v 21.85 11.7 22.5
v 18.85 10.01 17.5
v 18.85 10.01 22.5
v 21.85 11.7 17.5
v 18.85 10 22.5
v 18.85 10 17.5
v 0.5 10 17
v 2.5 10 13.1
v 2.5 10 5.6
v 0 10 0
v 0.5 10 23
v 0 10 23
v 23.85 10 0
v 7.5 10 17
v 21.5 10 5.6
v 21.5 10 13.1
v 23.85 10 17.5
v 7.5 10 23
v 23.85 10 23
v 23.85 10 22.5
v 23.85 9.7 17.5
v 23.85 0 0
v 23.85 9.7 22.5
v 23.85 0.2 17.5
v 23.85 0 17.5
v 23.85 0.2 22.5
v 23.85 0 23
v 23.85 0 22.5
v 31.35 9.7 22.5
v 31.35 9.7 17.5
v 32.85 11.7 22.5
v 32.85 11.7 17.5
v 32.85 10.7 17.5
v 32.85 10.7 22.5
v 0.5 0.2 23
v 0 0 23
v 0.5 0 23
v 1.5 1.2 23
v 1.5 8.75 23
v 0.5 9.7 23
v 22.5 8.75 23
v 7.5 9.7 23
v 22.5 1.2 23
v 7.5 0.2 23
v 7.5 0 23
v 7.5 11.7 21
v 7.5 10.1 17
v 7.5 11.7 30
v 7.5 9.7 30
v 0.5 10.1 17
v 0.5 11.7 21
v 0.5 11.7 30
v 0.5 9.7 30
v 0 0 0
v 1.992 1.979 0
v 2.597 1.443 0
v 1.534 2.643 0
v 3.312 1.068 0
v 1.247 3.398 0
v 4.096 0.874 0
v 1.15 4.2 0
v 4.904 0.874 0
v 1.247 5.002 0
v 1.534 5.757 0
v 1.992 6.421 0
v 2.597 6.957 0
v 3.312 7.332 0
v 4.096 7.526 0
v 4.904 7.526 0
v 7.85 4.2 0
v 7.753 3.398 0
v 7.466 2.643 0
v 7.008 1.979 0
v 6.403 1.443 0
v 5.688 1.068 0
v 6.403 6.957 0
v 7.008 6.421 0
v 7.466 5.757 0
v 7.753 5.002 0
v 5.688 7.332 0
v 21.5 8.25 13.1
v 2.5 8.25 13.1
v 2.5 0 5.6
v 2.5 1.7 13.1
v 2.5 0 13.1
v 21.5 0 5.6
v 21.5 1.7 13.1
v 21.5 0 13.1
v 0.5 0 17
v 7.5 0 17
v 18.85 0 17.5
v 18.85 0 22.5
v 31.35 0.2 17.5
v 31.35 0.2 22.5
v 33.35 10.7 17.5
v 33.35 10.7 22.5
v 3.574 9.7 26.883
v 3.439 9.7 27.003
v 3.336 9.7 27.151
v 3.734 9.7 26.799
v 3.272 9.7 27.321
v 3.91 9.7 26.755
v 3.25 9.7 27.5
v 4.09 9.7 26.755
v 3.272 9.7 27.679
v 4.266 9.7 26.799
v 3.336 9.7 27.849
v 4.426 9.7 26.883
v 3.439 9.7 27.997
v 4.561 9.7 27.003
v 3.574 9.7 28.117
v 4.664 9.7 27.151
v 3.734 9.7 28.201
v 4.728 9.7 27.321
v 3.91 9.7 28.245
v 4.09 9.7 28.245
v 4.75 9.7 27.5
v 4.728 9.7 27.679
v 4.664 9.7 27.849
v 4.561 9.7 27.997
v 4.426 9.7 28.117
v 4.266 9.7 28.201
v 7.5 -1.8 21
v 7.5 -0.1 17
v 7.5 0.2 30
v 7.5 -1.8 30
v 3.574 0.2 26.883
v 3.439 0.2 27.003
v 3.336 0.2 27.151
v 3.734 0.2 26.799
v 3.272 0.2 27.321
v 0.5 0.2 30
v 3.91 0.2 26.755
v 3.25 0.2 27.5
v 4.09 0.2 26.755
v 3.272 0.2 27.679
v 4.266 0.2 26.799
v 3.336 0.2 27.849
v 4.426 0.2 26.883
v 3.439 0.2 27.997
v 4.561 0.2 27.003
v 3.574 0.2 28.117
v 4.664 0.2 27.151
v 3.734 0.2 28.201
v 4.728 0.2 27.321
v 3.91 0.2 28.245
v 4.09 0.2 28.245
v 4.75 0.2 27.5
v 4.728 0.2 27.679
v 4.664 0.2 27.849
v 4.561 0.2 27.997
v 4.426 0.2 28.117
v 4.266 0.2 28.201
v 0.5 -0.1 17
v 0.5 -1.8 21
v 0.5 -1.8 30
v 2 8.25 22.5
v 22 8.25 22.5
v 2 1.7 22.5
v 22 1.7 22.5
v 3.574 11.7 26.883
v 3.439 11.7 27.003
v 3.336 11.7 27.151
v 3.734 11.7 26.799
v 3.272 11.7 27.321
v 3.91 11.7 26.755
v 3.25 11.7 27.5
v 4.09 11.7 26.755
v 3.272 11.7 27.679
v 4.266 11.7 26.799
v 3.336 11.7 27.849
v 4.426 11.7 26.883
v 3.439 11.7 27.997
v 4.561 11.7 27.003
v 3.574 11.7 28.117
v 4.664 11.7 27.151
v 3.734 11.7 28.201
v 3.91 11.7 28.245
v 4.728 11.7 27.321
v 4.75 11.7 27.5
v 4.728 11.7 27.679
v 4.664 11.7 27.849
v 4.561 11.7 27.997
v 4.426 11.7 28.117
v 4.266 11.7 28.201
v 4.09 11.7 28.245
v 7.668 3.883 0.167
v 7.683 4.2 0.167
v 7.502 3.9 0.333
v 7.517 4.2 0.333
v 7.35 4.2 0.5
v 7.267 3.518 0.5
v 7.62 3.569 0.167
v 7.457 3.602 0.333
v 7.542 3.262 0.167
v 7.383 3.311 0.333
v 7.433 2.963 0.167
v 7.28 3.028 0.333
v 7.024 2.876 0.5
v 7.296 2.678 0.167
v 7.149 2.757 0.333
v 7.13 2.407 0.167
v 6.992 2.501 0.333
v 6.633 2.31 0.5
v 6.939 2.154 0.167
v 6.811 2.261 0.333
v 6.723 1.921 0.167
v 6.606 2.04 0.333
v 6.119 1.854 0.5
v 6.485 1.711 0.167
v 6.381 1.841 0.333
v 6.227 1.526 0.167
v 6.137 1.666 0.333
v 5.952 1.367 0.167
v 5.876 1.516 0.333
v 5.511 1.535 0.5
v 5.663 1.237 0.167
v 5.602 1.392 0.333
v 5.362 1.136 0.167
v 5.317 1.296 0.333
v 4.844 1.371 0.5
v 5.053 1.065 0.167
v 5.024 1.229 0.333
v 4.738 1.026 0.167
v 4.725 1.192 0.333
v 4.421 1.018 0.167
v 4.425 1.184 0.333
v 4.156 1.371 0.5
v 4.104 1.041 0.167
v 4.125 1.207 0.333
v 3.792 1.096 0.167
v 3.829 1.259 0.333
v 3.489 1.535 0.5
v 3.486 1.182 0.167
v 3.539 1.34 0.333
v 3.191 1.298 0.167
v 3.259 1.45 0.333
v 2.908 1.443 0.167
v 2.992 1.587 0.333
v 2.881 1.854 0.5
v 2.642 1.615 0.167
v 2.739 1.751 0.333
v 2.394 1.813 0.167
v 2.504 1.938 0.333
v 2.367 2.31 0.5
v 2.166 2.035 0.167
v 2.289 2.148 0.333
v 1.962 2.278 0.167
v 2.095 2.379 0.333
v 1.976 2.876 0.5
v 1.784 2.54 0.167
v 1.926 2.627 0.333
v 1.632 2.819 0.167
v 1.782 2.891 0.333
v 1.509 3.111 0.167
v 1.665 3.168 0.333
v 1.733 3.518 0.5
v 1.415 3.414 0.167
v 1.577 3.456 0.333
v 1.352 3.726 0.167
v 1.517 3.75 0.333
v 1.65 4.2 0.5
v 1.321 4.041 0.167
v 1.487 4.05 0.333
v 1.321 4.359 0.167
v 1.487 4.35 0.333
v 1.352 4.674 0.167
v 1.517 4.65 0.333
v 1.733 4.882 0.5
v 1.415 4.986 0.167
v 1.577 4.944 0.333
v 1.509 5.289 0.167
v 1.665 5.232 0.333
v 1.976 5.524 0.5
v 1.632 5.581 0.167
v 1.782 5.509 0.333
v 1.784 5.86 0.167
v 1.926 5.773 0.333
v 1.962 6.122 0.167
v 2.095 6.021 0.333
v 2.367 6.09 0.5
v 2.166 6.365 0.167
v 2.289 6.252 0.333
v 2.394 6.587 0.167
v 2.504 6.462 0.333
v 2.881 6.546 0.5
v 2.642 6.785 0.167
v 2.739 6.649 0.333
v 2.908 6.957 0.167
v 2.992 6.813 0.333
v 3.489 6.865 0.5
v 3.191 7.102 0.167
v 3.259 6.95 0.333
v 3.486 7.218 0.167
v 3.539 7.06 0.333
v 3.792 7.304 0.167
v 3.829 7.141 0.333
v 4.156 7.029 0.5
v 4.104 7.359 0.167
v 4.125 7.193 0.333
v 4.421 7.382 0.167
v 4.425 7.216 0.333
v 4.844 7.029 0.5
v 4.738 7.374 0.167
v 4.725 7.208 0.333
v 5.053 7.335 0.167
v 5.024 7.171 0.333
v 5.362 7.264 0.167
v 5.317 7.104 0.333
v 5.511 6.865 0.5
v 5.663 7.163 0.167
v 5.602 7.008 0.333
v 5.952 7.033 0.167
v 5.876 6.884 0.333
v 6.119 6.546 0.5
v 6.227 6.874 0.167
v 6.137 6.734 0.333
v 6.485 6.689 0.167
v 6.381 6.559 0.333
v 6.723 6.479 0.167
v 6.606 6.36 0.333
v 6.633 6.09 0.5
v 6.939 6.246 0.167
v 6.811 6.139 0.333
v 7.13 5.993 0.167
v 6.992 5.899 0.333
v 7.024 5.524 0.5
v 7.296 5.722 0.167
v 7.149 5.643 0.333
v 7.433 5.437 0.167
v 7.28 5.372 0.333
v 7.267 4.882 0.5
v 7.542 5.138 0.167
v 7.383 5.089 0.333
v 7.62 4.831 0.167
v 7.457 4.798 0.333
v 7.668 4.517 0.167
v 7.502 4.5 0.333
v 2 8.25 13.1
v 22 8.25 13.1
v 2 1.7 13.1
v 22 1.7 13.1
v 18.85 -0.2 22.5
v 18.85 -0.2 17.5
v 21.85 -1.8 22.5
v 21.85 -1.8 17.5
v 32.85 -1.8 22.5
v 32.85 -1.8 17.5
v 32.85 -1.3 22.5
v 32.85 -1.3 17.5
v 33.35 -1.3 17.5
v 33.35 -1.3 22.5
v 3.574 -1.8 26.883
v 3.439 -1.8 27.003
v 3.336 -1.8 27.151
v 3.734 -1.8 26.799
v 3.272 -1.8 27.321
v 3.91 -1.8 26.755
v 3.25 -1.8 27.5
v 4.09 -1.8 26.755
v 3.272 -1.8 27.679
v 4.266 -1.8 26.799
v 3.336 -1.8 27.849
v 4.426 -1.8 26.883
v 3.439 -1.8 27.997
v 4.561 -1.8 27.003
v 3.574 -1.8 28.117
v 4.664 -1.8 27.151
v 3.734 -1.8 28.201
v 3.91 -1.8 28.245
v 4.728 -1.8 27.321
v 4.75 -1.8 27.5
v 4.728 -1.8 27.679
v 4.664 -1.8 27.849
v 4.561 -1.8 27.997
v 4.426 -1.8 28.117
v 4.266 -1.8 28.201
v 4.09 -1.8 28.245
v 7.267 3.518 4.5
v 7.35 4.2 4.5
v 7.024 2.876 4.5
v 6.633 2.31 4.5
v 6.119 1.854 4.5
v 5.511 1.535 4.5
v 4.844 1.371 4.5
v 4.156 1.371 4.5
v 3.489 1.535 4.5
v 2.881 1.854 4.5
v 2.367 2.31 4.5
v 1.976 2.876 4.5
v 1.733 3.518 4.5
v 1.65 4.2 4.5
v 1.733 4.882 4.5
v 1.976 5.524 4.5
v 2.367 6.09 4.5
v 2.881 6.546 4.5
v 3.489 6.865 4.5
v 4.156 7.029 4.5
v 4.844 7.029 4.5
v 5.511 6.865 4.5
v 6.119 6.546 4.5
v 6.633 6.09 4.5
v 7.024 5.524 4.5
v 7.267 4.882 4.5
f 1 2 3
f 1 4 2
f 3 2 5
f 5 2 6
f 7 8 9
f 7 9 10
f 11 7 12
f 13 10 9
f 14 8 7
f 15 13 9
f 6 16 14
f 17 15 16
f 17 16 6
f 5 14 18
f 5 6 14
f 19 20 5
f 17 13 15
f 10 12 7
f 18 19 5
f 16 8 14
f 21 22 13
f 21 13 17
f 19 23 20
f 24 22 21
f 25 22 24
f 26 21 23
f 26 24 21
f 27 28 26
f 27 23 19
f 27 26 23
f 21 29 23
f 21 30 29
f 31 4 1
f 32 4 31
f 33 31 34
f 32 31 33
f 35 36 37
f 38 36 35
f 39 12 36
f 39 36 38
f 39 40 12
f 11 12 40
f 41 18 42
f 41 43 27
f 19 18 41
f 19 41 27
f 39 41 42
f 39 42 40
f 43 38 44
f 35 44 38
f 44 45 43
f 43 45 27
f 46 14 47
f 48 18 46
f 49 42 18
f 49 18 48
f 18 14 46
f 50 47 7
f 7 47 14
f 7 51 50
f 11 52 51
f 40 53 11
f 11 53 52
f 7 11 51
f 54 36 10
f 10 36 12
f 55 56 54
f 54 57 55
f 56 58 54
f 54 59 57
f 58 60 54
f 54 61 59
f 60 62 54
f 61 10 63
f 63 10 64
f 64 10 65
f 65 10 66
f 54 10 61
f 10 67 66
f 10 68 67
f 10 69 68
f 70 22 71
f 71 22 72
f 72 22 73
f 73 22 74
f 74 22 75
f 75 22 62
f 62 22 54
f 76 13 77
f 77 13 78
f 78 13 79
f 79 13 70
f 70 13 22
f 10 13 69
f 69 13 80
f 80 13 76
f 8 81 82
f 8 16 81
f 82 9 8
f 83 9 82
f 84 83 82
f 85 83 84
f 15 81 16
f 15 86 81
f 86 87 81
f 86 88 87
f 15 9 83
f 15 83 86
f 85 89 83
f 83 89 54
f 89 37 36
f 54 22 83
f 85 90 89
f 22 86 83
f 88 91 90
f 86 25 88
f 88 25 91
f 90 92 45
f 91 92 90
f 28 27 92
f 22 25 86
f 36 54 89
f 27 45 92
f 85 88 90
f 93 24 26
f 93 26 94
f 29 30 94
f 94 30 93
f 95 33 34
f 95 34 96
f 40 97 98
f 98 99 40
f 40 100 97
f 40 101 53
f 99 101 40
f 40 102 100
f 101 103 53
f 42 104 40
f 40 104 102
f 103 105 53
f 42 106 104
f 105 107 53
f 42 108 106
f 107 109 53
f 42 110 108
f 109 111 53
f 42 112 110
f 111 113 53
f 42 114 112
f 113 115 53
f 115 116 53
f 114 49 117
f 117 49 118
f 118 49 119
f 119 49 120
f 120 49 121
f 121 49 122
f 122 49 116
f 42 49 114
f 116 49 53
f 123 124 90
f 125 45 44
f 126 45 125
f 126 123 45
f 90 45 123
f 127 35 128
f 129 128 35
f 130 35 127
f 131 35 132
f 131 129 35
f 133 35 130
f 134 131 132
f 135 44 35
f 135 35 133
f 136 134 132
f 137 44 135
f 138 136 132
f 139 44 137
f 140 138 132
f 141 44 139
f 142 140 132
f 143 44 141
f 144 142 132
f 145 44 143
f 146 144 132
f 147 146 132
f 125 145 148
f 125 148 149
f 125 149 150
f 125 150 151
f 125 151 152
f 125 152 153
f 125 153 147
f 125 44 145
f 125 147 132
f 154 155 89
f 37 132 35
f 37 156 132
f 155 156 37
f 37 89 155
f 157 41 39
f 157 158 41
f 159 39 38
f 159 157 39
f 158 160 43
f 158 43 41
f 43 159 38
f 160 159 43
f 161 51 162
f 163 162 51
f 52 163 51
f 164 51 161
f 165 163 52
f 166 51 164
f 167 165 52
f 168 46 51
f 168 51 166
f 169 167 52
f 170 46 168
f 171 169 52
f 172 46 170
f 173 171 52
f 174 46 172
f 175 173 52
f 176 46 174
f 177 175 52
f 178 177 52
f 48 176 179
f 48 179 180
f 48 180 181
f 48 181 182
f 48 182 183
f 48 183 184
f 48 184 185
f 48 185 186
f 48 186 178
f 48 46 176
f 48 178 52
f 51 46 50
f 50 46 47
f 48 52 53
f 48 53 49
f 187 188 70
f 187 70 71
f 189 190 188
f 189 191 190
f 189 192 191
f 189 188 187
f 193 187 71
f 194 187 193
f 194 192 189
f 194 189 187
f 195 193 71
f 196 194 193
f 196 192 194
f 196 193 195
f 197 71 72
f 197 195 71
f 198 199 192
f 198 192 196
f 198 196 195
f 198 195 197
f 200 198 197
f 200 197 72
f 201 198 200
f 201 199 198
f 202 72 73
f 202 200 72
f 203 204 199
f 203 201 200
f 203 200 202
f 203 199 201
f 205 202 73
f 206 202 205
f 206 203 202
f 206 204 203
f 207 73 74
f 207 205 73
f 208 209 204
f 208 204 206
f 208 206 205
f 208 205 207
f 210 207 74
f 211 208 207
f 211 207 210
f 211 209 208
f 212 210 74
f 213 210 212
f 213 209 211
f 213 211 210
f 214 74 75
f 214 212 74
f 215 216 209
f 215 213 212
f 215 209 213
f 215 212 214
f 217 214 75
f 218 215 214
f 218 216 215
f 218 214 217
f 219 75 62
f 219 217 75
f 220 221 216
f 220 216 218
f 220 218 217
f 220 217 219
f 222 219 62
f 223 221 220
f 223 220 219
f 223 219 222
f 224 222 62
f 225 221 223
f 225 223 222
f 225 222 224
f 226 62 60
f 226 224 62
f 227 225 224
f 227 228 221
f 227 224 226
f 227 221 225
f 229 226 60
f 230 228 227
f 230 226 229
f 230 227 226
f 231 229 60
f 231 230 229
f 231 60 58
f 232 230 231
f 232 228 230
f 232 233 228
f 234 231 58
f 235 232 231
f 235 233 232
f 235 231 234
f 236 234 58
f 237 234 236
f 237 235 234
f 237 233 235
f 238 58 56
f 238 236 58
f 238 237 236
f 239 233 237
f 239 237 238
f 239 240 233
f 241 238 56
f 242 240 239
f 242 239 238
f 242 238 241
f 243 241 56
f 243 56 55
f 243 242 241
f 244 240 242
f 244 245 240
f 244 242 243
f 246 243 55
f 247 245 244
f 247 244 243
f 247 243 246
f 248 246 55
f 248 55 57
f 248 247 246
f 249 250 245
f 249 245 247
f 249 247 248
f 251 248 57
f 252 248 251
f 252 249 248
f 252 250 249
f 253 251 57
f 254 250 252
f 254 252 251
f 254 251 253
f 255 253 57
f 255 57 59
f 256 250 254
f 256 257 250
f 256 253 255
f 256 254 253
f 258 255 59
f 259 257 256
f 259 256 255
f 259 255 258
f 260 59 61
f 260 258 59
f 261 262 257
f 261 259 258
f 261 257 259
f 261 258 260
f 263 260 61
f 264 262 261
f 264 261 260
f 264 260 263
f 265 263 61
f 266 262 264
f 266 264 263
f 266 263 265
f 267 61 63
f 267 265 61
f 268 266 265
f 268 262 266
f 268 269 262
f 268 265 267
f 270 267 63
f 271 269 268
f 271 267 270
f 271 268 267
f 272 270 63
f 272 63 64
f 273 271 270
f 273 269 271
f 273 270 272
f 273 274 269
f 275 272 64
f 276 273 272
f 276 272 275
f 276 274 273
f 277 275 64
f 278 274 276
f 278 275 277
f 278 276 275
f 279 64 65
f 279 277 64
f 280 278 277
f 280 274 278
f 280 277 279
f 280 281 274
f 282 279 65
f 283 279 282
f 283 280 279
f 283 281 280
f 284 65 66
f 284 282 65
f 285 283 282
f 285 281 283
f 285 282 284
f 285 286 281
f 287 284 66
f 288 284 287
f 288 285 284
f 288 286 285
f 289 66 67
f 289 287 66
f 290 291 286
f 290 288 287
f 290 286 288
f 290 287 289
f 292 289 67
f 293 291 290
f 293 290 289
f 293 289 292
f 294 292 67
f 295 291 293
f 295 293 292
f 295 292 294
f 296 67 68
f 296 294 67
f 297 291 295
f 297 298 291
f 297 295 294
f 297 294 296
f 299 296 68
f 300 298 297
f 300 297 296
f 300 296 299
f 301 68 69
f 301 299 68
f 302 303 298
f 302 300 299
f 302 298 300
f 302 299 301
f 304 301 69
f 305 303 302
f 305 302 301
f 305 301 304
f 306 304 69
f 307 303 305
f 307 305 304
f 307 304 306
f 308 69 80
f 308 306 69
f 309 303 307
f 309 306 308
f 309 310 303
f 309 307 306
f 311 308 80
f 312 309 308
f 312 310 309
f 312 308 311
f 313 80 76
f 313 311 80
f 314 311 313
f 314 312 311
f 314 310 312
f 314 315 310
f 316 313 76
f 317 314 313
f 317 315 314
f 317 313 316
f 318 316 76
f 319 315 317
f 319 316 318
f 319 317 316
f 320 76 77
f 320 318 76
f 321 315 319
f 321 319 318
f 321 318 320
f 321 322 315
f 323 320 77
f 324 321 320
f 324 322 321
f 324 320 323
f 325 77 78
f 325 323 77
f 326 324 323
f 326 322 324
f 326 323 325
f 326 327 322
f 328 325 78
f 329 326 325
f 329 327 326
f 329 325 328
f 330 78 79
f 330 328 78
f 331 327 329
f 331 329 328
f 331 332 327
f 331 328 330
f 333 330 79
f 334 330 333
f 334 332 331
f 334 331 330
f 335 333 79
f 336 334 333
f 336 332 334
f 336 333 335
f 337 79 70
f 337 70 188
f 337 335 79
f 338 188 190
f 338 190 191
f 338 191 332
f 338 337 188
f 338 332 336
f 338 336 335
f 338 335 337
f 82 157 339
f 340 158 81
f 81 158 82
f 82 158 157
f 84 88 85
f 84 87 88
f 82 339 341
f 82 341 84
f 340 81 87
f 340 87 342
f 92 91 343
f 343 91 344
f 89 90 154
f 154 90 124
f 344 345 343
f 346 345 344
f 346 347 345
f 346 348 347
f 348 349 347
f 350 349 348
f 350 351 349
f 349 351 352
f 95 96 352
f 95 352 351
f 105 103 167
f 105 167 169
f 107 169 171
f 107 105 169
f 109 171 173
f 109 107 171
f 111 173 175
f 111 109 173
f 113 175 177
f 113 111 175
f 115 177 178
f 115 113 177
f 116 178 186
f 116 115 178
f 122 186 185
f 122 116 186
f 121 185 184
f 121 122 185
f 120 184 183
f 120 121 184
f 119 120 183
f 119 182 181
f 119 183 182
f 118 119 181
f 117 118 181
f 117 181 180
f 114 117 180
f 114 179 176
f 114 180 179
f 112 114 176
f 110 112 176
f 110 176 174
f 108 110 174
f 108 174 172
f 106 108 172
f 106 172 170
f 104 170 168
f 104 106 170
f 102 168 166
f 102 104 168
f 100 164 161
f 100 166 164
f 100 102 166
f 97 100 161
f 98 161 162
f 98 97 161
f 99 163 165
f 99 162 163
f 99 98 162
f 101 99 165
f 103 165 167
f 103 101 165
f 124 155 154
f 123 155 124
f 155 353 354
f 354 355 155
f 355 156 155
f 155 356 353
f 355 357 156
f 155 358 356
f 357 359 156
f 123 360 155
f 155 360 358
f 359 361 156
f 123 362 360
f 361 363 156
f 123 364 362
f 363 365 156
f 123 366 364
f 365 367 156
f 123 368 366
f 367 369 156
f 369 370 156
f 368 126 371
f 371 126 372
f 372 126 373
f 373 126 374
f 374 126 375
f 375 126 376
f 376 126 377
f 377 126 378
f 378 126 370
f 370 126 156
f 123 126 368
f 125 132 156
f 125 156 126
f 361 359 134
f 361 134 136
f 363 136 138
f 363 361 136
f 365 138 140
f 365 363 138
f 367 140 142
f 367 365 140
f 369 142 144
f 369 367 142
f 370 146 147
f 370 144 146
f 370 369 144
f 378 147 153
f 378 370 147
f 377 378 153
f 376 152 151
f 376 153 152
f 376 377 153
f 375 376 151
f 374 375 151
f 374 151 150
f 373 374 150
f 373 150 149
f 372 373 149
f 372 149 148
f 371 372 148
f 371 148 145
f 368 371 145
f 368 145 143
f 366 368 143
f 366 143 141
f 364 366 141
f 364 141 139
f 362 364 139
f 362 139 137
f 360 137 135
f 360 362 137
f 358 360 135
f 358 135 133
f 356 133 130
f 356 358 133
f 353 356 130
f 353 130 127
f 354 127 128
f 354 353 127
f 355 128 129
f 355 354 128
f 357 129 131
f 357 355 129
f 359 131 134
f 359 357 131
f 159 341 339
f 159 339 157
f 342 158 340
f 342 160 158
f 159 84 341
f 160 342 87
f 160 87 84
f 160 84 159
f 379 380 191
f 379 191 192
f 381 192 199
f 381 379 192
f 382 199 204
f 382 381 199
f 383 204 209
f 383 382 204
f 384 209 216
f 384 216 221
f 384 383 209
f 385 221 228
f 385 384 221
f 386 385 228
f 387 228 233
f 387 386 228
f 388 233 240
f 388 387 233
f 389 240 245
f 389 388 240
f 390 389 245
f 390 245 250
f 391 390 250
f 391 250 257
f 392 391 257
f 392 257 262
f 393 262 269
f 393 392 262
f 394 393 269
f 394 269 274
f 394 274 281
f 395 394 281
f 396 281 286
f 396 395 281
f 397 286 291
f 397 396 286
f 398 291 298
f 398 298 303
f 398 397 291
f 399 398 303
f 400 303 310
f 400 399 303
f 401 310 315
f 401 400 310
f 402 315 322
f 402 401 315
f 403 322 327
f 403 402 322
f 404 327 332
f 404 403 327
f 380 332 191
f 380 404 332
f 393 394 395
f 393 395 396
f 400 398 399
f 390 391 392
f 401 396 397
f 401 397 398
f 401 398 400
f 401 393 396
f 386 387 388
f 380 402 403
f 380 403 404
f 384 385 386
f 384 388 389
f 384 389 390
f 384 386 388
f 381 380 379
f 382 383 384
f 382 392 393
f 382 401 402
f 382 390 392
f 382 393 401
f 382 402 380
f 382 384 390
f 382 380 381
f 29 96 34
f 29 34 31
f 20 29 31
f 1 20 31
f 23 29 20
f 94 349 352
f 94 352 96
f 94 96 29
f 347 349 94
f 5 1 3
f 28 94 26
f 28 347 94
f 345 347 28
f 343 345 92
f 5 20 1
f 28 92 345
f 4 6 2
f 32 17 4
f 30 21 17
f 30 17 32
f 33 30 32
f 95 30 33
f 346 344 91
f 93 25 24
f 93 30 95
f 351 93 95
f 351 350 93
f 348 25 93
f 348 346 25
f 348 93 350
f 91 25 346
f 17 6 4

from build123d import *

# Parameters (mm, degrees)
BOX_W             = 23.85
BOX_H             = 10
BOX_DEPTH         = 23
BOX001_W          = 20
BOX001_H          = 6.55
BOX001_DEPTH      = 9.9
BOX002_W          = 19
BOX002_H          = 15
BOX002_DEPTH      = 7.5
CHAMFER_SIZE      = 0.5
CYLINDER_R        = 2.85
CYLINDER_DEPTH    = 4.5
CHAMFER001_SIZE   = 0.5
BOX003_W          = 7
BOX003_H          = 2
BOX003_DEPTH      = 13
CHAMFER002_SIZE2  = 4
CHAMFER002_SIZE   = 1.7
BOX004_W          = 7
BOX004_H          = 2
BOX004_DEPTH      = 13
CYLINDER001_R     = 0.75
CYLINDER001_DEPTH = 15
CHAMFER003_SIZE2  = 4
CHAMFER003_SIZE   = 1.6
BOX005_W          = 5
BOX005_H          = 2
BOX005_DEPTH      = 14
CHAMFER004_SIZE2  = 3
CHAMFER004_SIZE   = 1.6
BOX006_W          = 5
BOX006_H          = 2
BOX006_DEPTH      = 14
CHAMFER005_SIZE2  = 3
CHAMFER005_SIZE   = 1.69
BOX007_W          = 5
BOX007_H          = 12
BOX007_DEPTH      = 2


with BuildPart() as part:
    # Box → Box (join)
    with BuildSketch(Plane.XY):
        with Locations((11.925, 5)):
            Rectangle(BOX_W, BOX_H)
    extrude(amount=BOX_DEPTH)

    # Box001 → Box001 (cut)
    with BuildSketch(Plane(origin=(2, 1.7, 13.1), x_dir=(1, 0, 0), z_dir=(0, 0, 1))):
        with Locations((10, 3.275)):
            Rectangle(BOX001_W, BOX001_H)
    extrude(amount=BOX001_DEPTH, mode=Mode.SUBTRACT)

    # Box002 → Box002 (cut)
    with BuildSketch(Plane(origin=(2.5, -2.8, 5.6), x_dir=(1, 0, 0), z_dir=(0, 0, 1))):
        with Locations((9.5, 7.5)):
            Rectangle(BOX002_W, BOX002_H)
    extrude(amount=BOX002_DEPTH, mode=Mode.SUBTRACT)

    # Chamfer
    chamfer_edges = [part.edges().sort_by_distance(p)[0] for p in [
        (12, 8.25, 23),
        (22, 4.975, 23),
        (12, 1.7, 23),
        (2, 4.975, 23),
    ]]
    chamfer(chamfer_edges, length=CHAMFER_SIZE)

    # Cylinder → Cylinder (cut)
    with BuildSketch(Plane(origin=(4.5, 4.2, 4.5), x_dir=(1, 0, 0), z_dir=(0, 0, -1))):
        Circle(CYLINDER_R)
    extrude(amount=CYLINDER_DEPTH, mode=Mode.SUBTRACT)

    # Chamfer001
    chamfer001_edges = [part.edges().sort_by_distance(p)[0] for p in [
        (1.65, 4.2, 0),
    ]]
    chamfer(chamfer001_edges, length=CHAMFER001_SIZE)

    # Box003 → Box003 (join)
    with BuildSketch(Plane(origin=(0.5, -1.8, 17), x_dir=(1, 0, 0), z_dir=(0, 0, 1))):
        with Locations((3.5, 1)):
            Rectangle(BOX003_W, BOX003_H)
    extrude(amount=BOX003_DEPTH)

    # Chamfer002
    chamfer002_edges = [part.edges().sort_by_distance(p)[0] for p in [
        (4, -1.8, 17),
    ]]
    chamfer002_side = part.faces().sort_by_distance((4, -0.9, 17))[0]
    chamfer(chamfer002_edges, length=CHAMFER002_SIZE, length2=CHAMFER002_SIZE2, reference=chamfer002_side)

    # Box004 → Box004 (join)
    with BuildSketch(Plane(origin=(0.5, 9.7, 17), x_dir=(1, 0, 0), z_dir=(0, 0, 1))):
        with Locations((3.5, 1)):
            Rectangle(BOX004_W, BOX004_H)
    extrude(amount=BOX004_DEPTH)

    # Cylinder001 → Cylinder001 (cut)
    with BuildSketch(Plane(origin=(4, -2.8, 27.5), x_dir=(-1, 0, 0), z_dir=(0, 1, 0))):
        Circle(CYLINDER001_R)
    extrude(amount=CYLINDER001_DEPTH, mode=Mode.SUBTRACT)

    # Chamfer003
    chamfer003_edges = [part.edges().sort_by_distance(p)[0] for p in [
        (4, 11.7, 17),
    ]]
    chamfer003_side = part.faces().sort_by_distance((4, 10.85, 17))[0]
    chamfer(chamfer003_edges, length=CHAMFER003_SIZE, length2=CHAMFER003_SIZE2, reference=chamfer003_side)

    # Box005 → Box005 (join)
    with BuildSketch(Plane(origin=(18.85, -1.8, 22.5), x_dir=(0, 0, -1), z_dir=(1, 0, 0))):
        with Locations((2.5, 1)):
            Rectangle(BOX005_W, BOX005_H)
    extrude(amount=BOX005_DEPTH)

    # Chamfer004
    chamfer004_edges = [part.edges().sort_by_distance(p)[0] for p in [
        (18.85, -1.8, 20),
    ]]
    chamfer004_side = part.faces().sort_by_distance((18.85, -0.9, 20))[0]
    chamfer(chamfer004_edges, length=CHAMFER004_SIZE, length2=CHAMFER004_SIZE2, reference=chamfer004_side)

    # Box006 → Box006 (join)
    with BuildSketch(Plane(origin=(18.85, 9.7, 22.5), x_dir=(0, 0, -1), z_dir=(1, 0, 0))):
        with Locations((2.5, 1)):
            Rectangle(BOX006_W, BOX006_H)
    extrude(amount=BOX006_DEPTH)

    # Chamfer005
    chamfer005_edges = [part.edges().sort_by_distance(p)[0] for p in [
        (18.85, 11.7, 20),
    ]]
    chamfer005_side = part.faces().sort_by_distance((18.85, 10.85, 20))[0]
    chamfer(chamfer005_edges, length=CHAMFER005_SIZE, length2=CHAMFER005_SIZE2, reference=chamfer005_side)

    # Box007 → Box007 (join)
    with BuildSketch(Plane(origin=(31.35, -1.3, 22.5), x_dir=(0, 0, -1), z_dir=(1, 0, 0))):
        with Locations((2.5, 6)):
            Rectangle(BOX007_W, BOX007_H)
    extrude(amount=BOX007_DEPTH)


solid = part.part
